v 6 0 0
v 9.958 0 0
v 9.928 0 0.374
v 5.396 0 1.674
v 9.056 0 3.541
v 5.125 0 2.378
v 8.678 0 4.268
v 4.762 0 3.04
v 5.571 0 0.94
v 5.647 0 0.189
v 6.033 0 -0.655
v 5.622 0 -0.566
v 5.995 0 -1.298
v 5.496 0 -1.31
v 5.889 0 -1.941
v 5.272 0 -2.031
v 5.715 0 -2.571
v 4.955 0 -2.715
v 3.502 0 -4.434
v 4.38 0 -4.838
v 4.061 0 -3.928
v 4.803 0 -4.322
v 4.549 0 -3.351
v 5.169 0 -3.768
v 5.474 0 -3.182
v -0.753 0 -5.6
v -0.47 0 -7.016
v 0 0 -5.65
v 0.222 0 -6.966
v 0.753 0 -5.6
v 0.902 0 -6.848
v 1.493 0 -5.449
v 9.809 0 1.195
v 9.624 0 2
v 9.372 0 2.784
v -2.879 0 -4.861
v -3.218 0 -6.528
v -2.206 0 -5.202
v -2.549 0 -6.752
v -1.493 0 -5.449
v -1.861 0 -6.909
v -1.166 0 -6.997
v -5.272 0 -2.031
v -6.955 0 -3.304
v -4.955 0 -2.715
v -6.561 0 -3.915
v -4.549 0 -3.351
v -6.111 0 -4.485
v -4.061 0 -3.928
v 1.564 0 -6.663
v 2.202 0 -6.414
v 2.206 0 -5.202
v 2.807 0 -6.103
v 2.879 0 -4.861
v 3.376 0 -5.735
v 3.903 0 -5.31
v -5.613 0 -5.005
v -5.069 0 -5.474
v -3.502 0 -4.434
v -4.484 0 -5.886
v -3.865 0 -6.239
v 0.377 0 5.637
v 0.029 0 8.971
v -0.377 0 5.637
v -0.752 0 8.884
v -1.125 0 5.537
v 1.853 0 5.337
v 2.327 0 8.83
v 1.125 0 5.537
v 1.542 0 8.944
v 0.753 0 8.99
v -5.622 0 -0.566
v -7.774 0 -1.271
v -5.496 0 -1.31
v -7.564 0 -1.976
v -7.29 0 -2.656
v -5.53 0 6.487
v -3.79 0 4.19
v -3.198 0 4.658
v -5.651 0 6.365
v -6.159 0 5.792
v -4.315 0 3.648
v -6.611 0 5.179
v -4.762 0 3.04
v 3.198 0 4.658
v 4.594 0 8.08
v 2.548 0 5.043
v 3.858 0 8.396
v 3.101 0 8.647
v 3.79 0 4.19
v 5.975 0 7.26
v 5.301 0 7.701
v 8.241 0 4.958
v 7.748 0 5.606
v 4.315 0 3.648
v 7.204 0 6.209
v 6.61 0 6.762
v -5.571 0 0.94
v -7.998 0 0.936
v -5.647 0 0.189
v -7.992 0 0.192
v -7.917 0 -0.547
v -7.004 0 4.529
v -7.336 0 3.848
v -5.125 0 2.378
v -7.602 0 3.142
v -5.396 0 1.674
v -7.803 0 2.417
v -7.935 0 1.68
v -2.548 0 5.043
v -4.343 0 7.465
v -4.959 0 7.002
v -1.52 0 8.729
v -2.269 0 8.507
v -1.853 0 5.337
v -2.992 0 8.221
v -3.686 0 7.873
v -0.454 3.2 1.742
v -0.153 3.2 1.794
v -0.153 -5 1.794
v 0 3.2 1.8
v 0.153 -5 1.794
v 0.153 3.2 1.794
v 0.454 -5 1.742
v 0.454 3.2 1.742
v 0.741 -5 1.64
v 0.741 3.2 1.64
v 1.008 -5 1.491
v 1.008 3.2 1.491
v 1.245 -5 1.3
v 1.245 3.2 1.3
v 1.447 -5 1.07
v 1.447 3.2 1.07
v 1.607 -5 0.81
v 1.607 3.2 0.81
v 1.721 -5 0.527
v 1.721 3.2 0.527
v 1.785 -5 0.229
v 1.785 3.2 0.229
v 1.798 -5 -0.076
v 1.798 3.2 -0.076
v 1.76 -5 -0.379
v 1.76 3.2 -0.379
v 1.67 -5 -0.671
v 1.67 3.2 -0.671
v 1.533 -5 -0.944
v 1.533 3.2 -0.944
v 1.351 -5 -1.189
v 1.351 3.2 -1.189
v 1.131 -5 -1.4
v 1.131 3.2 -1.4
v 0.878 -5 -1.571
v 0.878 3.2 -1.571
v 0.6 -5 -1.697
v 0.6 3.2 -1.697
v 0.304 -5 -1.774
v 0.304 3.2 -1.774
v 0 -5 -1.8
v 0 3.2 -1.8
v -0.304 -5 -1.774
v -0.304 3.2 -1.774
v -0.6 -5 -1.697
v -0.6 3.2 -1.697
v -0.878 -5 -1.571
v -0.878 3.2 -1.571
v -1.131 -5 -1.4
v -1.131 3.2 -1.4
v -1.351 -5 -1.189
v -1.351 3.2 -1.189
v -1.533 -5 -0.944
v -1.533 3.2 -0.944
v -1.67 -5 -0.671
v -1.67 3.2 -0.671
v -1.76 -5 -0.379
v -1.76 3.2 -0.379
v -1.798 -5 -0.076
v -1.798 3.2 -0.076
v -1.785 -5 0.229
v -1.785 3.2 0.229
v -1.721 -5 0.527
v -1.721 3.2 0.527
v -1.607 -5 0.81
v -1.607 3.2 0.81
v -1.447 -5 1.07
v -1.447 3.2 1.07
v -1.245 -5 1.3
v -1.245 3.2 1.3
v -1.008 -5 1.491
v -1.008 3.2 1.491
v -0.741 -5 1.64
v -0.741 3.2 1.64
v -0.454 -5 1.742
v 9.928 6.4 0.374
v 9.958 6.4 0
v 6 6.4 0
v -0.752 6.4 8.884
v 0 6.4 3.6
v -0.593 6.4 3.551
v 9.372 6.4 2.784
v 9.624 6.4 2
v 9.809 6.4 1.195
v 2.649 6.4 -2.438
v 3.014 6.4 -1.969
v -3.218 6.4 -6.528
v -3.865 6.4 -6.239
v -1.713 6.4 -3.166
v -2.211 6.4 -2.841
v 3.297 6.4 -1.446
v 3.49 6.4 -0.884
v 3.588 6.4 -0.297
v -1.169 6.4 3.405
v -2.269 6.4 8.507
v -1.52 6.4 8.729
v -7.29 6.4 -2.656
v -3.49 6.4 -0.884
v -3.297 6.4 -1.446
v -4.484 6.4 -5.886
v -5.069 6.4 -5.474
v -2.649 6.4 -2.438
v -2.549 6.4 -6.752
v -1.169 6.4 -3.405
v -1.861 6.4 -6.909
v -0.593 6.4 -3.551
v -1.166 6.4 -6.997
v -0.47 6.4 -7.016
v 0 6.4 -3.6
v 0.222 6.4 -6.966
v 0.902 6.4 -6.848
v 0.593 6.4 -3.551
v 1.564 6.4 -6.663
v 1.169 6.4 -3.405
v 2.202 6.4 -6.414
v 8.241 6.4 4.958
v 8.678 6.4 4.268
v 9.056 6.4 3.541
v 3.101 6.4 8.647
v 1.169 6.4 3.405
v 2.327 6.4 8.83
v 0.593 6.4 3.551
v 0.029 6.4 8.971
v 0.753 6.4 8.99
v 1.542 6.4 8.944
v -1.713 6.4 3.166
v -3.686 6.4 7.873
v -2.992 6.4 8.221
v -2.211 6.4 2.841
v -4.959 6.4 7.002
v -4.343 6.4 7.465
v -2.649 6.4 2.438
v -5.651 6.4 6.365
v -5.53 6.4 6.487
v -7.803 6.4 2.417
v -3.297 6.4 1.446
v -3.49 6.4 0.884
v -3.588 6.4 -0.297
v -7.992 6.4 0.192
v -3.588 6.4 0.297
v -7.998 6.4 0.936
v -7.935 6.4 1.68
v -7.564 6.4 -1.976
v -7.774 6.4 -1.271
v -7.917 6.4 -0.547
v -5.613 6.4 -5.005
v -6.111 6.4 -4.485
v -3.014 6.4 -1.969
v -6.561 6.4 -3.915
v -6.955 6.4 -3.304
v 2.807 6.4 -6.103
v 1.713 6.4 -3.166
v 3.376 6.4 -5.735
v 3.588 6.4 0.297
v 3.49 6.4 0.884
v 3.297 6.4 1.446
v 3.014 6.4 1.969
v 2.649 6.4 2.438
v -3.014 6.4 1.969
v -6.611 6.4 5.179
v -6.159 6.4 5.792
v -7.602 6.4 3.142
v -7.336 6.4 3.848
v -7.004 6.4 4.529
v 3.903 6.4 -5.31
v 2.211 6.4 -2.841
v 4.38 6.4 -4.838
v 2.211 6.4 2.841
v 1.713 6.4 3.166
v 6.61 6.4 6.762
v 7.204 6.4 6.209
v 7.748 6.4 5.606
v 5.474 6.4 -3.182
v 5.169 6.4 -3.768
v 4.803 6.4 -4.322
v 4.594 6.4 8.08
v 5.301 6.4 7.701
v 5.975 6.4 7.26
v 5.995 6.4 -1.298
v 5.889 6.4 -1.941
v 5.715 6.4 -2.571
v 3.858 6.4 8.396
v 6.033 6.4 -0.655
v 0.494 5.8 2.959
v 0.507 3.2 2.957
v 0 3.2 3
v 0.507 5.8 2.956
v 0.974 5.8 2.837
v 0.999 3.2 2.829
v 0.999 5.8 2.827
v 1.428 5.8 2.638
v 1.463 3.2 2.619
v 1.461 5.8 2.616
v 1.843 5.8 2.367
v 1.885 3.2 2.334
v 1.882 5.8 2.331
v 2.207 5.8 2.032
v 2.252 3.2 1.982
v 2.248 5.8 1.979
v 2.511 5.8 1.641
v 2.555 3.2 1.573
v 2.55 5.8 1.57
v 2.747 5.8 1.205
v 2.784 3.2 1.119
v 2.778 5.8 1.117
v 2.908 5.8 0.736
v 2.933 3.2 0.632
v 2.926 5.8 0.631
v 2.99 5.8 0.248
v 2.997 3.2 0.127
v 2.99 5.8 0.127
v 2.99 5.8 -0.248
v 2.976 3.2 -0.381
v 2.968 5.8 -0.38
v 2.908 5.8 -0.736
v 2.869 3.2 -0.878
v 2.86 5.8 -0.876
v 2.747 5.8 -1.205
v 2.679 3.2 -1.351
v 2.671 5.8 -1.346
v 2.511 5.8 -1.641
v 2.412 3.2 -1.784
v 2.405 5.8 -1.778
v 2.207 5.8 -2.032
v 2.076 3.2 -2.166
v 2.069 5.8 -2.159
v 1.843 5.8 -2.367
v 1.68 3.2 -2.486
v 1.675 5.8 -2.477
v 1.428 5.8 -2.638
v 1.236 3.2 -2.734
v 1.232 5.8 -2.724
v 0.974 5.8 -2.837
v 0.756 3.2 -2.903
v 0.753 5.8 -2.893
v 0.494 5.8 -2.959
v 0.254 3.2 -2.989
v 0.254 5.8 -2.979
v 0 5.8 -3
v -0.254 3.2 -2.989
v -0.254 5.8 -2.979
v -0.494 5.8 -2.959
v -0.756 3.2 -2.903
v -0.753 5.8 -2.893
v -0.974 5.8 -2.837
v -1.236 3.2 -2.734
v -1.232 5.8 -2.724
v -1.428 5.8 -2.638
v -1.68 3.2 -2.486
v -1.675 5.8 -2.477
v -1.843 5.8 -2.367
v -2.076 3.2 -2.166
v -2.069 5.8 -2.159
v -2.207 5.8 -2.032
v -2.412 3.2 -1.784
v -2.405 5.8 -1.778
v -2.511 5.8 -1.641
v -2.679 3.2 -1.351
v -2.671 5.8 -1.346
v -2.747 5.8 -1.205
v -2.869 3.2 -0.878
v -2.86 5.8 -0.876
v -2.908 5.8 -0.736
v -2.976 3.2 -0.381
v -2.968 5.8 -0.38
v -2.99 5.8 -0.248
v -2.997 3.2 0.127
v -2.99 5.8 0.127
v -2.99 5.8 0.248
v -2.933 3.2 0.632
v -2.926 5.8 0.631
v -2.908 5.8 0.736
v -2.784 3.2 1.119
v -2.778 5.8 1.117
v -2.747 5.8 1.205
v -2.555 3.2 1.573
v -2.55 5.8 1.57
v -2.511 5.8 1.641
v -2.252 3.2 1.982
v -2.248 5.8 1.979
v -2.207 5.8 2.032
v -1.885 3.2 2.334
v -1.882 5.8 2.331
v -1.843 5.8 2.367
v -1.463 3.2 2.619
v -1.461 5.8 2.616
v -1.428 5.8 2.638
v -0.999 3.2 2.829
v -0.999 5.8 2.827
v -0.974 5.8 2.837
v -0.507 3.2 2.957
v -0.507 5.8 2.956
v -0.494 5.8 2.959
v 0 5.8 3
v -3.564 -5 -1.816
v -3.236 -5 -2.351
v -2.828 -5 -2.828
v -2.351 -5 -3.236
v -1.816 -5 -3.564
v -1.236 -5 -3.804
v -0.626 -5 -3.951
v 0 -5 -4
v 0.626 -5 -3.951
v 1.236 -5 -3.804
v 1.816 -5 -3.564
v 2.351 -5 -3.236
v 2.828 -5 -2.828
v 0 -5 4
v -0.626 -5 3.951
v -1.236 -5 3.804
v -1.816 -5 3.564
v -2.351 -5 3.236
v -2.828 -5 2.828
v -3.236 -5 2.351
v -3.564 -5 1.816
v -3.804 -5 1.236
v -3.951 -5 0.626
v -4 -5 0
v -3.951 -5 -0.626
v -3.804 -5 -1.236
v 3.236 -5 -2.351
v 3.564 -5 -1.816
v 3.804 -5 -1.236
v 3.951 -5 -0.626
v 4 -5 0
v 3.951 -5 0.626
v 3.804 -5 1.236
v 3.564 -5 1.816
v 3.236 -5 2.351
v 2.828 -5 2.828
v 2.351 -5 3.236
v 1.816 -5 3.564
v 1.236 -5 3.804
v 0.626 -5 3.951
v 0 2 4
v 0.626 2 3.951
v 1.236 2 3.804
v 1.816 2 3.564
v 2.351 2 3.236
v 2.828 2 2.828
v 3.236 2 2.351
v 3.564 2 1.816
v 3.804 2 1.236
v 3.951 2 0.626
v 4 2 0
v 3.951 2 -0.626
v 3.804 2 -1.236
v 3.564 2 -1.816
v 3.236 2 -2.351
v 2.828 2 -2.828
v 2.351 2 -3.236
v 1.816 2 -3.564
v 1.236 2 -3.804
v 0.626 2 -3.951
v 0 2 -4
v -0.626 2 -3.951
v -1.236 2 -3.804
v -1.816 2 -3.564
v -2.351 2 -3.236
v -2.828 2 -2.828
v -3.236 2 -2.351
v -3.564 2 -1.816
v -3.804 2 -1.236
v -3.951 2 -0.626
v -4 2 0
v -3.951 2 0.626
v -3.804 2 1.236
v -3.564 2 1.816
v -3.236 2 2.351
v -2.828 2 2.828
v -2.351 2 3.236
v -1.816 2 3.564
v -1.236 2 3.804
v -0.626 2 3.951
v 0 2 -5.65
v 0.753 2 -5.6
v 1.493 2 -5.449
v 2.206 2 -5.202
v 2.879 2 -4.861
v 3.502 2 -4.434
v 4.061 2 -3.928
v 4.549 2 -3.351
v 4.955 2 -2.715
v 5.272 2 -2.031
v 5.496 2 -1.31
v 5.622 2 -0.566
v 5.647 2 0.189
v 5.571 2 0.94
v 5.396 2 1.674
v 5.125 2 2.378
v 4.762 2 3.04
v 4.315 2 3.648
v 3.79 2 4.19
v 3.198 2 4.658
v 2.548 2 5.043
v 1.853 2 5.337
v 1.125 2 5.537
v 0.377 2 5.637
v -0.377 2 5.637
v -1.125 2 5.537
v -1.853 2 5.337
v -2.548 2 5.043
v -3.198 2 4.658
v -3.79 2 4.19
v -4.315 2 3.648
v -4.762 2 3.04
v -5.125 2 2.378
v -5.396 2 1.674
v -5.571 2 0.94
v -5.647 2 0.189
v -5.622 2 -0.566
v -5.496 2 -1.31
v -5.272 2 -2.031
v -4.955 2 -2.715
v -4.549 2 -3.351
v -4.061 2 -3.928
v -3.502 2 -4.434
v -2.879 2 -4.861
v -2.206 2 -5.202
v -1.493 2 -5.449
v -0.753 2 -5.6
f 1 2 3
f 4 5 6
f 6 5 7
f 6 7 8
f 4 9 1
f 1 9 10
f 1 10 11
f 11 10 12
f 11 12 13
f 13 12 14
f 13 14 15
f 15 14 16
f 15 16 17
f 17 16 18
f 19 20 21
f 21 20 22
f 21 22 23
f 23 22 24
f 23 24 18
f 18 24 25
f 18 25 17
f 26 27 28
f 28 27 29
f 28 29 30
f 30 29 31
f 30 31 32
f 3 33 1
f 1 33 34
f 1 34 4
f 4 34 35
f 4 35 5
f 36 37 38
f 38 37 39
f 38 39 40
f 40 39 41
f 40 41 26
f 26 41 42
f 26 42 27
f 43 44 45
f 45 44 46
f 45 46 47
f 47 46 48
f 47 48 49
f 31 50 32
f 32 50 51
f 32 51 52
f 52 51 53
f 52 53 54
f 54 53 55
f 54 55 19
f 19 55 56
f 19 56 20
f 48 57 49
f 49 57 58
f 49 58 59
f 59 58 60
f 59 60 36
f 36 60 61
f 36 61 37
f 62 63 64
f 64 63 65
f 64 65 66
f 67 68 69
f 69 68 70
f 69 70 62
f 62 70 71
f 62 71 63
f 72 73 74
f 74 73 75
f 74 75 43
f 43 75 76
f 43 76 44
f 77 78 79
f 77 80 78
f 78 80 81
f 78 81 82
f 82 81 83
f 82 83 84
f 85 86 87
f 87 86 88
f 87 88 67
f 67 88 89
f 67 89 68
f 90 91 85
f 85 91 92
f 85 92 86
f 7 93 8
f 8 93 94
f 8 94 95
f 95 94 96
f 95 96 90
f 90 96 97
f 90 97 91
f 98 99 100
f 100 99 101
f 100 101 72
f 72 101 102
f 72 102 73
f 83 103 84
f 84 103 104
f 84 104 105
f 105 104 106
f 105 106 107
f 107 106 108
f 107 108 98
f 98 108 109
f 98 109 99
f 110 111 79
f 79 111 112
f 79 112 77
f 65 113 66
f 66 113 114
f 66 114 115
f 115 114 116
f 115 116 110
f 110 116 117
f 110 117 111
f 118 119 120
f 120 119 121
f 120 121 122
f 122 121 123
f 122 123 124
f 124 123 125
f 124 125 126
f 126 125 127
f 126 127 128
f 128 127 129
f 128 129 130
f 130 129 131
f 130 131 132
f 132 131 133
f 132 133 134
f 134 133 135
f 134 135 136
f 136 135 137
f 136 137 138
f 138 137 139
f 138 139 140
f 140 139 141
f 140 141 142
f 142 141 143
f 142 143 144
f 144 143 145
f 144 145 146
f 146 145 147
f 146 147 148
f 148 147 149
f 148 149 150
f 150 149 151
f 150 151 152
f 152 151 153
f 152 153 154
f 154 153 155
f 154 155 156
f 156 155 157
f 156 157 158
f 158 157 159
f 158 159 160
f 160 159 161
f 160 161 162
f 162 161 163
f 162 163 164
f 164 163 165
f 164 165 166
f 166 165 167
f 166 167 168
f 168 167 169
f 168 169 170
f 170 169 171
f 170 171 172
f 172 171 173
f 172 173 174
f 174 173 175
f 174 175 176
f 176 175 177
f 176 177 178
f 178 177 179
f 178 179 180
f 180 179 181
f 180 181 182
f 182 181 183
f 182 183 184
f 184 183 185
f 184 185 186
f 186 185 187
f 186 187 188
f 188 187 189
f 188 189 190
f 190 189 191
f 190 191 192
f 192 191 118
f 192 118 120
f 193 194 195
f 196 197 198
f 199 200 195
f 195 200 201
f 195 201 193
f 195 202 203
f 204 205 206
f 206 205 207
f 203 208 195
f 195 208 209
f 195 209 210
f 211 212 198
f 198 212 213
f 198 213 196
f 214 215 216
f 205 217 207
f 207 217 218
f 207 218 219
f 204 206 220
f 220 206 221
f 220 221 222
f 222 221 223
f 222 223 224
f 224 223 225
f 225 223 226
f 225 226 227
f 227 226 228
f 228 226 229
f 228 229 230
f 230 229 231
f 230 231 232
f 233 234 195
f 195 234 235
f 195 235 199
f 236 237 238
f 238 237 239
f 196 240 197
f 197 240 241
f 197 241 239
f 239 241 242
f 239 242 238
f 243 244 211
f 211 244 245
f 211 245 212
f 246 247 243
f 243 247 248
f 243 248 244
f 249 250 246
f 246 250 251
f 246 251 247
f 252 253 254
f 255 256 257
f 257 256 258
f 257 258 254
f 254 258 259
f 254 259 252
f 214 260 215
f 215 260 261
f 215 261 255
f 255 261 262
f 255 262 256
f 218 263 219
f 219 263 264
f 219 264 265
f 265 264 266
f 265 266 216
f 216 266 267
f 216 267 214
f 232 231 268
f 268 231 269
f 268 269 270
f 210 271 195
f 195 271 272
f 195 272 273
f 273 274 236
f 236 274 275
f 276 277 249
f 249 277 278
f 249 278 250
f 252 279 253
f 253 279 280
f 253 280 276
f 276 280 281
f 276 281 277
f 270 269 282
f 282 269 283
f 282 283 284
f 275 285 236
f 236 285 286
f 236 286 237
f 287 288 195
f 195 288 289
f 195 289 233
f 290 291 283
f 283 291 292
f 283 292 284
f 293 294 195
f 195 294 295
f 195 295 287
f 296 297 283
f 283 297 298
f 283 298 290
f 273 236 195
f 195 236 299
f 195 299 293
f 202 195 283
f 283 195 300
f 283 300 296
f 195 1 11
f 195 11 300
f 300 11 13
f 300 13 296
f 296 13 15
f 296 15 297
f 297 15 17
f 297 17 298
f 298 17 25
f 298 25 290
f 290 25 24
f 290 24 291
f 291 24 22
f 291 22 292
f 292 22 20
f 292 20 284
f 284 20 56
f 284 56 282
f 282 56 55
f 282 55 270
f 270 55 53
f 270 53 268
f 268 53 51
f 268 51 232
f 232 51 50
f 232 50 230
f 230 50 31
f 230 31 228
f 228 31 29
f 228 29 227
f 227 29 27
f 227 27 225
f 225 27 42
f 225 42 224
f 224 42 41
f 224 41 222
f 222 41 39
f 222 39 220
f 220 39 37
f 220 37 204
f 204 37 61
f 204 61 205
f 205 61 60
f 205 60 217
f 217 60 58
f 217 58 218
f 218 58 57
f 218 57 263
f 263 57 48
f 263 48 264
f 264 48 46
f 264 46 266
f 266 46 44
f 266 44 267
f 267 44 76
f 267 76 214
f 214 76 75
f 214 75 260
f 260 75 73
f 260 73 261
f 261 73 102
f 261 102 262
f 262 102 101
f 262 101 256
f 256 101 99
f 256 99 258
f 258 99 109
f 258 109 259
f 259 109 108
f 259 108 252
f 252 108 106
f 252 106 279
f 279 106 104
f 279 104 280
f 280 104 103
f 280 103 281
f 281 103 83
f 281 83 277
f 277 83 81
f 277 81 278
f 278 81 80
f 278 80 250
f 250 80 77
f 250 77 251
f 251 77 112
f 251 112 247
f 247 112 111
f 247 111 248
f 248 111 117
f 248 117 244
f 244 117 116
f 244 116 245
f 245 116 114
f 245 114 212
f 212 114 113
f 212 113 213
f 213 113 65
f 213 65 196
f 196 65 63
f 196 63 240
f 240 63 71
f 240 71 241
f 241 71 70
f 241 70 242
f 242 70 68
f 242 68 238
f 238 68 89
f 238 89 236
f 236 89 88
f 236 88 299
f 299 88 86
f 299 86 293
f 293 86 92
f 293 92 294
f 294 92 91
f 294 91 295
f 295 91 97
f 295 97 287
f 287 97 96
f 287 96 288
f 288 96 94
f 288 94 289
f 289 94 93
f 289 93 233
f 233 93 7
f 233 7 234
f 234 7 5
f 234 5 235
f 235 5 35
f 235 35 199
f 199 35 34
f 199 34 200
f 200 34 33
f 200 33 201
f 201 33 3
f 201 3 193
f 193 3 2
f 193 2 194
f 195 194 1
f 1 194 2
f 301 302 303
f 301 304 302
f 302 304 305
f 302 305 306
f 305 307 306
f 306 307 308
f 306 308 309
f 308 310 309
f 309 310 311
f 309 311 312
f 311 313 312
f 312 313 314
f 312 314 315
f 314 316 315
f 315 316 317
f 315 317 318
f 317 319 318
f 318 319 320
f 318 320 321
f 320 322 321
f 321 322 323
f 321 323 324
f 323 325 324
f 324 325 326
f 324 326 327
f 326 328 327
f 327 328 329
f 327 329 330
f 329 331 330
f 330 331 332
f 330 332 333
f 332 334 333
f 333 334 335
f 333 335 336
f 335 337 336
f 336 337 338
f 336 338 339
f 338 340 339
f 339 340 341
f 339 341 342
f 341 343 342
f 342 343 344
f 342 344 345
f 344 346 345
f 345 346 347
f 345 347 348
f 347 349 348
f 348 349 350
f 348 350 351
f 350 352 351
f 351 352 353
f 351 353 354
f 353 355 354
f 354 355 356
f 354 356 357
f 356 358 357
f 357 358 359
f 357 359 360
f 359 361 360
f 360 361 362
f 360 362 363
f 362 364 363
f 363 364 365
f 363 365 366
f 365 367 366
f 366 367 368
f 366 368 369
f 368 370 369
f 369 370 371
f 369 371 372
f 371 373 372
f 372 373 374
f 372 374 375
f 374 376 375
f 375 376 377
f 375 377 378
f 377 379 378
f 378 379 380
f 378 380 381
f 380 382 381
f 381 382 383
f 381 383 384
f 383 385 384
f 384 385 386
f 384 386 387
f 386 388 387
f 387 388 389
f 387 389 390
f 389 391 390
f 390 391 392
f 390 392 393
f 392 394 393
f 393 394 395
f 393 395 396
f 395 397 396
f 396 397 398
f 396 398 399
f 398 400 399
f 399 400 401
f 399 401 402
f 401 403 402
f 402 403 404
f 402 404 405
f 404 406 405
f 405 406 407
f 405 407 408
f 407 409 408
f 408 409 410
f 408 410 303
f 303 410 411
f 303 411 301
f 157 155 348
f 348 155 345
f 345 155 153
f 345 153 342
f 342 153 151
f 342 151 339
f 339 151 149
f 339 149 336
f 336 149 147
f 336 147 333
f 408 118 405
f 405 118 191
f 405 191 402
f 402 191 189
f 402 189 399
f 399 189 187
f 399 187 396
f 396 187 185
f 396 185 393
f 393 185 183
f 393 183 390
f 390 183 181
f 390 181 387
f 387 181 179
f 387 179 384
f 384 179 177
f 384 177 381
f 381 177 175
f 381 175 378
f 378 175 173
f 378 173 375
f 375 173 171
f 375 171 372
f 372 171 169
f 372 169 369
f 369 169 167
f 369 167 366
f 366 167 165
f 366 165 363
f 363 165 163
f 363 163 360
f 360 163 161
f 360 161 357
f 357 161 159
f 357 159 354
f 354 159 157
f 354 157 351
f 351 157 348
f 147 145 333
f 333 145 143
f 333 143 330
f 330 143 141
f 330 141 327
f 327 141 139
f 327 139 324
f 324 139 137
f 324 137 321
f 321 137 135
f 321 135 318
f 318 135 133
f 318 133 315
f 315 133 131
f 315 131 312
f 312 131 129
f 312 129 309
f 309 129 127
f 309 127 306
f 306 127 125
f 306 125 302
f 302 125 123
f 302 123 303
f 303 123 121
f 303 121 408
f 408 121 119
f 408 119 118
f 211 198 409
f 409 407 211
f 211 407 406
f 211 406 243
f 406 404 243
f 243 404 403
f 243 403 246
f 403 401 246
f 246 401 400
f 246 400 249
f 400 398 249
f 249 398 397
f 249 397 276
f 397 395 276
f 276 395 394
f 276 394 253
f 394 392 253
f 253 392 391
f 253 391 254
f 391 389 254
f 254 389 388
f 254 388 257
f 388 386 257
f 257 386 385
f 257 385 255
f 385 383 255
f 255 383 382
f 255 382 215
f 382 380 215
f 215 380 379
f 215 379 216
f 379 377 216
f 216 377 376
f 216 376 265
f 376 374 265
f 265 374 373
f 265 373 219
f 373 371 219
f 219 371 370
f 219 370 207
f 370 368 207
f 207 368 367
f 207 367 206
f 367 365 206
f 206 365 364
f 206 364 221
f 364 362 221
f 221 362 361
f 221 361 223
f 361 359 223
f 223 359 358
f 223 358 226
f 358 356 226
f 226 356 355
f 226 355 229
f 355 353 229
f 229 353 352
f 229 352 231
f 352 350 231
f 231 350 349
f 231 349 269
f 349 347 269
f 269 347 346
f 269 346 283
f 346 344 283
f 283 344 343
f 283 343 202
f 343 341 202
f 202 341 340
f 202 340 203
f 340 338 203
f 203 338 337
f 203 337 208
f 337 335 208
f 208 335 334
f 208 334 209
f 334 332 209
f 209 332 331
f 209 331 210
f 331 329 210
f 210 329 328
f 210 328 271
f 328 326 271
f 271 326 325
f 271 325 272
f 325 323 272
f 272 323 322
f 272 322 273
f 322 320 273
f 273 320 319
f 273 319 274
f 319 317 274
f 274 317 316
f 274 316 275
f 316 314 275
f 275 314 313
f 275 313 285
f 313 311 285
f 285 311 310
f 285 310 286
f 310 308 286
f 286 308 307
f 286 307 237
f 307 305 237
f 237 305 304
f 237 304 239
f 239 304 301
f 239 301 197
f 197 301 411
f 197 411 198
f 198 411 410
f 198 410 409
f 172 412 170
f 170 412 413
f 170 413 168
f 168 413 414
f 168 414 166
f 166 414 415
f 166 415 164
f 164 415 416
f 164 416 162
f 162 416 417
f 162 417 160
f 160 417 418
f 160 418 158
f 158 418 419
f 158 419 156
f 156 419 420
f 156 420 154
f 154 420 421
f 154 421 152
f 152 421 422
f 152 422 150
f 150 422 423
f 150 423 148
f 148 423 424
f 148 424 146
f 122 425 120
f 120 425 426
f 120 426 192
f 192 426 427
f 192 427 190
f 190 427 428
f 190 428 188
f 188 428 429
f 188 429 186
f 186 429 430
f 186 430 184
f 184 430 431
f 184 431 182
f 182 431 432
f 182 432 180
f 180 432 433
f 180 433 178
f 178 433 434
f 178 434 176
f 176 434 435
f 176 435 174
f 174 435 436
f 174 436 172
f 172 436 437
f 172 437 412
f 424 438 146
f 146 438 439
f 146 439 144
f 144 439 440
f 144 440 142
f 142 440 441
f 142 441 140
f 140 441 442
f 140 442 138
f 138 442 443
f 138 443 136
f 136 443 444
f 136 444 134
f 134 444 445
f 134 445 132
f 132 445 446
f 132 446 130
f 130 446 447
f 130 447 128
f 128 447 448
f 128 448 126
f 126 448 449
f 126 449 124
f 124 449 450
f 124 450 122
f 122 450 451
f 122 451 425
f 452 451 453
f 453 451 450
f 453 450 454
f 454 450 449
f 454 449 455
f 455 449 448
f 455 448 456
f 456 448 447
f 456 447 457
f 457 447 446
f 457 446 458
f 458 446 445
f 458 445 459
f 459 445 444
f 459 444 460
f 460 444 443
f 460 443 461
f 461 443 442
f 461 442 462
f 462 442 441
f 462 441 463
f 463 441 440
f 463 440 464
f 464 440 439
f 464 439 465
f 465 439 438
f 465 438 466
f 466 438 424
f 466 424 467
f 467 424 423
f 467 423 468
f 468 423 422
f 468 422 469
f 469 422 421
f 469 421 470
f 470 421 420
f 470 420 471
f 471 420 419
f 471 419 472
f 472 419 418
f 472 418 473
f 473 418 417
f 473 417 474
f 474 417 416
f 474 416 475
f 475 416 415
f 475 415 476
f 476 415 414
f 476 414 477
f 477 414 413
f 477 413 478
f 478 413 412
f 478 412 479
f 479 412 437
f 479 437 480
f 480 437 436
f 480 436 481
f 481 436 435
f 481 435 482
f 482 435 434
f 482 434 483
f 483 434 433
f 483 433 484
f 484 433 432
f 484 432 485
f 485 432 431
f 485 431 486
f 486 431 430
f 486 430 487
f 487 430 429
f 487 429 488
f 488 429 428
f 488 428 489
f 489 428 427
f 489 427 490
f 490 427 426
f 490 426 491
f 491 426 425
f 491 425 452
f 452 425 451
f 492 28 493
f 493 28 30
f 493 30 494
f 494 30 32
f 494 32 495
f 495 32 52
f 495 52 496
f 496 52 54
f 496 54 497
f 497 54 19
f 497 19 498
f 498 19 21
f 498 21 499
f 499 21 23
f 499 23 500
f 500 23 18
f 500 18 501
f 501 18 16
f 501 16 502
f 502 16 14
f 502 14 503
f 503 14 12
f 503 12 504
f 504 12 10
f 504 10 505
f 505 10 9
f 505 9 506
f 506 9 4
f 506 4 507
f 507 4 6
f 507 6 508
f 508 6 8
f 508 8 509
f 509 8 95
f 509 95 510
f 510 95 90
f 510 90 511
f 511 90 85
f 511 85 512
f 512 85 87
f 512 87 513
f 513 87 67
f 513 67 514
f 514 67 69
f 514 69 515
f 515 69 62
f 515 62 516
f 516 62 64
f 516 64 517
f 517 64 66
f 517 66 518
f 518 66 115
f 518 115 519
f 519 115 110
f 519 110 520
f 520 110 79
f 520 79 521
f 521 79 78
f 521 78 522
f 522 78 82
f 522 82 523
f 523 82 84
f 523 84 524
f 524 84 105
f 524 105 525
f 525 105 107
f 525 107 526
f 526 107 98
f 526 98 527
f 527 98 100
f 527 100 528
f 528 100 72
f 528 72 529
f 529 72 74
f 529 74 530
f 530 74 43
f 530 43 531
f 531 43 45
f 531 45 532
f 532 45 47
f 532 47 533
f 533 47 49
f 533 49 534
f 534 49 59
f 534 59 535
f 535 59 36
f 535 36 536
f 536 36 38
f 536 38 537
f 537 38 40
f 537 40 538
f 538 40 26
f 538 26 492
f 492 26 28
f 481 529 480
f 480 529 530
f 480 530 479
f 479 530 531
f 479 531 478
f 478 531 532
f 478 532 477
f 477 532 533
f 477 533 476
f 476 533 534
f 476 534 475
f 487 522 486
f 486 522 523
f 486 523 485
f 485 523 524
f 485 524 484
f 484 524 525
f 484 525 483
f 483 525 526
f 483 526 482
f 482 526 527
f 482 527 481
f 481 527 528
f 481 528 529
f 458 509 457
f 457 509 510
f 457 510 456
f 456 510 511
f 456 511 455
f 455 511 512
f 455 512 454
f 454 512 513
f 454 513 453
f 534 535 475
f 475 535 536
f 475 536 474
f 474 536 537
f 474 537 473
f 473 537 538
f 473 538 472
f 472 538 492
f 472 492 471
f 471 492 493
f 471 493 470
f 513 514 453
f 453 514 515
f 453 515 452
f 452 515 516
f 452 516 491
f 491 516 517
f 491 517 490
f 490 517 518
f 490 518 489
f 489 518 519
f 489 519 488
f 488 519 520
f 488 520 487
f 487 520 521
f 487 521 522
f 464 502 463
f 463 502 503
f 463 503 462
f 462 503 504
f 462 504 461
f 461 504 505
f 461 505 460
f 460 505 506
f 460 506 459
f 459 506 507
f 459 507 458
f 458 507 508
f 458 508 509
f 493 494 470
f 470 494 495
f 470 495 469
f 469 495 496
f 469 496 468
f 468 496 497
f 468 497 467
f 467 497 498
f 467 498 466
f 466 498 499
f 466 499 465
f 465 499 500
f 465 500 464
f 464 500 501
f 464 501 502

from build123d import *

# Parameters (mm, degrees)
SKETCH_1_R          = 1.8
EXTRUDE_1_DEPTH     = 6.4
SKETCH_7_R          = 3
CUT_EXTRUDE_1_DEPTH = 3.2
CHAMFER_1_SIZE      = 0.6
SKETCH_8_R          = 4
SKETCH_8_R_2        = 1.8
EXTRUDE_2_DEPTH     = 5
SKETCH_9_R          = 5.65
SKETCH_9_R_2        = 4
CUT_EXTRUDE_2_DEPTH = 2


with BuildPart() as part:
    # Эскиз1 → Бобышка-Вытянуть1 (new body)
    with BuildSketch(Plane(origin=(0, 0, 0), x_dir=(1, 0, 0), z_dir=(0, 1, 0))):
        with BuildLine():
            Line((6, 0), (9.958406744, 0))
            add(Edge.make_bspline(
                [(6, 0), (6.002272113, 0.021639174), (6.006529407, 0.064971678), (6.015112598, 0.163427407), (6.024775509, 0.304129478), (6.030478934, 0.434809211), (6.033334434, 0.586716982), (6.032690583, 0.73827041), (6.027179884, 0.917587714), (6.010615451, 1.172313346), (5.977069804, 1.476758321), (5.918236292, 1.829501116), (5.824427259, 2.227172291), (5.704652114, 2.617866963), (5.559586468, 2.999854381), (5.390015398, 3.37162893), (5.19680319, 3.731668412), (4.980898847, 4.078578375), (4.683933464, 4.49412557), (4.286417683, 4.961346959), (3.767682288, 5.455500007), (3.109527716, 5.942482642), (2.396776267, 6.345253396), (1.640568289, 6.658816766), (0.655269827, 6.9348581), (-0.364309039, 7.052809796), (-1.389575446, 7.010898818), (-2.594207276, 6.774307442), (-3.752583959, 6.357368572), (-4.993966669, 5.625704065), (-6.195596017, 4.500381965), (-7.127759938, 3.143923409), (-7.87695686, 1.320366061), (-8.180095948, -1.059949049), (-7.699390251, -3.435390648), (-6.512391275, -5.521956271), (-5.075747859, -6.990123604), (-3.724412466, -7.925022405), (-2.222268119, -8.590173964), (-0.623254184, -8.96626176), (1.017251524, -9.044338961), (2.64479309, -8.825696647), (4.207248475, -8.321045328), (5.475341442, -7.646118032), (6.464647424, -6.917652279), (7.212483615, -6.22094648), (7.760623375, -5.614225587), (8.254896543, -4.962890636), (8.692017546, -4.271907538), (9.022022694, -3.637148435), (9.265934425, -3.074854387), (9.442641195, -2.595861785), (9.567873004, -2.207063914), (9.676789888, -1.813460825), (9.769263478, -1.415482574), (9.835643513, -1.064750616), (9.878366151, -0.785836788), (9.904303789, -0.586478316), (9.918920643, -0.459345016), (9.929802018, -0.353837425), (9.942380024, -0.217342139), (9.951035172, -0.108219013), (9.955659249, -0.043429627), (9.958406744, 0)],
                knots=[0.06216236, 0.06216236, 0.06216236, 0.06216236, 0.06216236, 0.063892833, 0.065623306, 0.069084252, 0.070814725, 0.072545198, 0.076006145, 0.079467091, 0.082928037, 0.08984993, 0.09677185, 0.10369377, 0.110615691, 0.117537611, 0.124459543, 0.131381476, 0.138303408, 0.14522534, 0.159069147, 0.172912954, 0.18675682, 0.200600685, 0.214444528, 0.22828837, 0.255976018, 0.269819885, 0.283663751, 0.311351426, 0.339039092, 0.366726833, 0.39441446, 0.422102194, 0.471739609, 0.527114886, 0.554802546, 0.582490205, 0.610177862, 0.63786552, 0.665553157, 0.693240795, 0.720928452, 0.748616109, 0.776303777, 0.790147611, 0.803991445, 0.817835273, 0.831679101, 0.845522928, 0.859366756, 0.866288677, 0.873210599, 0.88013252, 0.887054442, 0.893976363, 0.900898285, 0.904359246, 0.906089726, 0.907820206, 0.909550687, 0.911281167, 0.914742128, 0.914742128, 0.914742128, 0.914742128, 0.914742128], degree=4))
        make_face()
        Circle(SKETCH_1_R, mode=Mode.SUBTRACT)
    extrude(amount=EXTRUDE_1_DEPTH)

    # Эскиз7 → Вырез-Вытянуть1 (cut)
    with BuildSketch(Plane(origin=(0, 6.4, 0), x_dir=(1, 0, 0), z_dir=(0, 1, 0))):
        Circle(SKETCH_7_R)
    extrude(amount=-CUT_EXTRUDE_1_DEPTH, mode=Mode.SUBTRACT)

    # Фаска1
    chamfer_1_edges = [part.edges().sort_by_distance(p)[0] for p in [
        (-3, 6.4, 0),
    ]]
    chamfer(chamfer_1_edges, length=CHAMFER_1_SIZE)

    # Эскиз8 → Бобышка-Вытянуть2 (add)
    with BuildSketch(Plane.XZ):
        Circle(SKETCH_8_R)
        Circle(SKETCH_8_R_2, mode=Mode.SUBTRACT)
    extrude(amount=EXTRUDE_2_DEPTH)

    # Эскиз9 → Вырез-Вытянуть2 (cut)
    with BuildSketch(Plane.XZ):
        Circle(SKETCH_9_R)
        Circle(SKETCH_9_R_2, mode=Mode.SUBTRACT)
    extrude(amount=-CUT_EXTRUDE_2_DEPTH, mode=Mode.SUBTRACT)


solid = part.part
